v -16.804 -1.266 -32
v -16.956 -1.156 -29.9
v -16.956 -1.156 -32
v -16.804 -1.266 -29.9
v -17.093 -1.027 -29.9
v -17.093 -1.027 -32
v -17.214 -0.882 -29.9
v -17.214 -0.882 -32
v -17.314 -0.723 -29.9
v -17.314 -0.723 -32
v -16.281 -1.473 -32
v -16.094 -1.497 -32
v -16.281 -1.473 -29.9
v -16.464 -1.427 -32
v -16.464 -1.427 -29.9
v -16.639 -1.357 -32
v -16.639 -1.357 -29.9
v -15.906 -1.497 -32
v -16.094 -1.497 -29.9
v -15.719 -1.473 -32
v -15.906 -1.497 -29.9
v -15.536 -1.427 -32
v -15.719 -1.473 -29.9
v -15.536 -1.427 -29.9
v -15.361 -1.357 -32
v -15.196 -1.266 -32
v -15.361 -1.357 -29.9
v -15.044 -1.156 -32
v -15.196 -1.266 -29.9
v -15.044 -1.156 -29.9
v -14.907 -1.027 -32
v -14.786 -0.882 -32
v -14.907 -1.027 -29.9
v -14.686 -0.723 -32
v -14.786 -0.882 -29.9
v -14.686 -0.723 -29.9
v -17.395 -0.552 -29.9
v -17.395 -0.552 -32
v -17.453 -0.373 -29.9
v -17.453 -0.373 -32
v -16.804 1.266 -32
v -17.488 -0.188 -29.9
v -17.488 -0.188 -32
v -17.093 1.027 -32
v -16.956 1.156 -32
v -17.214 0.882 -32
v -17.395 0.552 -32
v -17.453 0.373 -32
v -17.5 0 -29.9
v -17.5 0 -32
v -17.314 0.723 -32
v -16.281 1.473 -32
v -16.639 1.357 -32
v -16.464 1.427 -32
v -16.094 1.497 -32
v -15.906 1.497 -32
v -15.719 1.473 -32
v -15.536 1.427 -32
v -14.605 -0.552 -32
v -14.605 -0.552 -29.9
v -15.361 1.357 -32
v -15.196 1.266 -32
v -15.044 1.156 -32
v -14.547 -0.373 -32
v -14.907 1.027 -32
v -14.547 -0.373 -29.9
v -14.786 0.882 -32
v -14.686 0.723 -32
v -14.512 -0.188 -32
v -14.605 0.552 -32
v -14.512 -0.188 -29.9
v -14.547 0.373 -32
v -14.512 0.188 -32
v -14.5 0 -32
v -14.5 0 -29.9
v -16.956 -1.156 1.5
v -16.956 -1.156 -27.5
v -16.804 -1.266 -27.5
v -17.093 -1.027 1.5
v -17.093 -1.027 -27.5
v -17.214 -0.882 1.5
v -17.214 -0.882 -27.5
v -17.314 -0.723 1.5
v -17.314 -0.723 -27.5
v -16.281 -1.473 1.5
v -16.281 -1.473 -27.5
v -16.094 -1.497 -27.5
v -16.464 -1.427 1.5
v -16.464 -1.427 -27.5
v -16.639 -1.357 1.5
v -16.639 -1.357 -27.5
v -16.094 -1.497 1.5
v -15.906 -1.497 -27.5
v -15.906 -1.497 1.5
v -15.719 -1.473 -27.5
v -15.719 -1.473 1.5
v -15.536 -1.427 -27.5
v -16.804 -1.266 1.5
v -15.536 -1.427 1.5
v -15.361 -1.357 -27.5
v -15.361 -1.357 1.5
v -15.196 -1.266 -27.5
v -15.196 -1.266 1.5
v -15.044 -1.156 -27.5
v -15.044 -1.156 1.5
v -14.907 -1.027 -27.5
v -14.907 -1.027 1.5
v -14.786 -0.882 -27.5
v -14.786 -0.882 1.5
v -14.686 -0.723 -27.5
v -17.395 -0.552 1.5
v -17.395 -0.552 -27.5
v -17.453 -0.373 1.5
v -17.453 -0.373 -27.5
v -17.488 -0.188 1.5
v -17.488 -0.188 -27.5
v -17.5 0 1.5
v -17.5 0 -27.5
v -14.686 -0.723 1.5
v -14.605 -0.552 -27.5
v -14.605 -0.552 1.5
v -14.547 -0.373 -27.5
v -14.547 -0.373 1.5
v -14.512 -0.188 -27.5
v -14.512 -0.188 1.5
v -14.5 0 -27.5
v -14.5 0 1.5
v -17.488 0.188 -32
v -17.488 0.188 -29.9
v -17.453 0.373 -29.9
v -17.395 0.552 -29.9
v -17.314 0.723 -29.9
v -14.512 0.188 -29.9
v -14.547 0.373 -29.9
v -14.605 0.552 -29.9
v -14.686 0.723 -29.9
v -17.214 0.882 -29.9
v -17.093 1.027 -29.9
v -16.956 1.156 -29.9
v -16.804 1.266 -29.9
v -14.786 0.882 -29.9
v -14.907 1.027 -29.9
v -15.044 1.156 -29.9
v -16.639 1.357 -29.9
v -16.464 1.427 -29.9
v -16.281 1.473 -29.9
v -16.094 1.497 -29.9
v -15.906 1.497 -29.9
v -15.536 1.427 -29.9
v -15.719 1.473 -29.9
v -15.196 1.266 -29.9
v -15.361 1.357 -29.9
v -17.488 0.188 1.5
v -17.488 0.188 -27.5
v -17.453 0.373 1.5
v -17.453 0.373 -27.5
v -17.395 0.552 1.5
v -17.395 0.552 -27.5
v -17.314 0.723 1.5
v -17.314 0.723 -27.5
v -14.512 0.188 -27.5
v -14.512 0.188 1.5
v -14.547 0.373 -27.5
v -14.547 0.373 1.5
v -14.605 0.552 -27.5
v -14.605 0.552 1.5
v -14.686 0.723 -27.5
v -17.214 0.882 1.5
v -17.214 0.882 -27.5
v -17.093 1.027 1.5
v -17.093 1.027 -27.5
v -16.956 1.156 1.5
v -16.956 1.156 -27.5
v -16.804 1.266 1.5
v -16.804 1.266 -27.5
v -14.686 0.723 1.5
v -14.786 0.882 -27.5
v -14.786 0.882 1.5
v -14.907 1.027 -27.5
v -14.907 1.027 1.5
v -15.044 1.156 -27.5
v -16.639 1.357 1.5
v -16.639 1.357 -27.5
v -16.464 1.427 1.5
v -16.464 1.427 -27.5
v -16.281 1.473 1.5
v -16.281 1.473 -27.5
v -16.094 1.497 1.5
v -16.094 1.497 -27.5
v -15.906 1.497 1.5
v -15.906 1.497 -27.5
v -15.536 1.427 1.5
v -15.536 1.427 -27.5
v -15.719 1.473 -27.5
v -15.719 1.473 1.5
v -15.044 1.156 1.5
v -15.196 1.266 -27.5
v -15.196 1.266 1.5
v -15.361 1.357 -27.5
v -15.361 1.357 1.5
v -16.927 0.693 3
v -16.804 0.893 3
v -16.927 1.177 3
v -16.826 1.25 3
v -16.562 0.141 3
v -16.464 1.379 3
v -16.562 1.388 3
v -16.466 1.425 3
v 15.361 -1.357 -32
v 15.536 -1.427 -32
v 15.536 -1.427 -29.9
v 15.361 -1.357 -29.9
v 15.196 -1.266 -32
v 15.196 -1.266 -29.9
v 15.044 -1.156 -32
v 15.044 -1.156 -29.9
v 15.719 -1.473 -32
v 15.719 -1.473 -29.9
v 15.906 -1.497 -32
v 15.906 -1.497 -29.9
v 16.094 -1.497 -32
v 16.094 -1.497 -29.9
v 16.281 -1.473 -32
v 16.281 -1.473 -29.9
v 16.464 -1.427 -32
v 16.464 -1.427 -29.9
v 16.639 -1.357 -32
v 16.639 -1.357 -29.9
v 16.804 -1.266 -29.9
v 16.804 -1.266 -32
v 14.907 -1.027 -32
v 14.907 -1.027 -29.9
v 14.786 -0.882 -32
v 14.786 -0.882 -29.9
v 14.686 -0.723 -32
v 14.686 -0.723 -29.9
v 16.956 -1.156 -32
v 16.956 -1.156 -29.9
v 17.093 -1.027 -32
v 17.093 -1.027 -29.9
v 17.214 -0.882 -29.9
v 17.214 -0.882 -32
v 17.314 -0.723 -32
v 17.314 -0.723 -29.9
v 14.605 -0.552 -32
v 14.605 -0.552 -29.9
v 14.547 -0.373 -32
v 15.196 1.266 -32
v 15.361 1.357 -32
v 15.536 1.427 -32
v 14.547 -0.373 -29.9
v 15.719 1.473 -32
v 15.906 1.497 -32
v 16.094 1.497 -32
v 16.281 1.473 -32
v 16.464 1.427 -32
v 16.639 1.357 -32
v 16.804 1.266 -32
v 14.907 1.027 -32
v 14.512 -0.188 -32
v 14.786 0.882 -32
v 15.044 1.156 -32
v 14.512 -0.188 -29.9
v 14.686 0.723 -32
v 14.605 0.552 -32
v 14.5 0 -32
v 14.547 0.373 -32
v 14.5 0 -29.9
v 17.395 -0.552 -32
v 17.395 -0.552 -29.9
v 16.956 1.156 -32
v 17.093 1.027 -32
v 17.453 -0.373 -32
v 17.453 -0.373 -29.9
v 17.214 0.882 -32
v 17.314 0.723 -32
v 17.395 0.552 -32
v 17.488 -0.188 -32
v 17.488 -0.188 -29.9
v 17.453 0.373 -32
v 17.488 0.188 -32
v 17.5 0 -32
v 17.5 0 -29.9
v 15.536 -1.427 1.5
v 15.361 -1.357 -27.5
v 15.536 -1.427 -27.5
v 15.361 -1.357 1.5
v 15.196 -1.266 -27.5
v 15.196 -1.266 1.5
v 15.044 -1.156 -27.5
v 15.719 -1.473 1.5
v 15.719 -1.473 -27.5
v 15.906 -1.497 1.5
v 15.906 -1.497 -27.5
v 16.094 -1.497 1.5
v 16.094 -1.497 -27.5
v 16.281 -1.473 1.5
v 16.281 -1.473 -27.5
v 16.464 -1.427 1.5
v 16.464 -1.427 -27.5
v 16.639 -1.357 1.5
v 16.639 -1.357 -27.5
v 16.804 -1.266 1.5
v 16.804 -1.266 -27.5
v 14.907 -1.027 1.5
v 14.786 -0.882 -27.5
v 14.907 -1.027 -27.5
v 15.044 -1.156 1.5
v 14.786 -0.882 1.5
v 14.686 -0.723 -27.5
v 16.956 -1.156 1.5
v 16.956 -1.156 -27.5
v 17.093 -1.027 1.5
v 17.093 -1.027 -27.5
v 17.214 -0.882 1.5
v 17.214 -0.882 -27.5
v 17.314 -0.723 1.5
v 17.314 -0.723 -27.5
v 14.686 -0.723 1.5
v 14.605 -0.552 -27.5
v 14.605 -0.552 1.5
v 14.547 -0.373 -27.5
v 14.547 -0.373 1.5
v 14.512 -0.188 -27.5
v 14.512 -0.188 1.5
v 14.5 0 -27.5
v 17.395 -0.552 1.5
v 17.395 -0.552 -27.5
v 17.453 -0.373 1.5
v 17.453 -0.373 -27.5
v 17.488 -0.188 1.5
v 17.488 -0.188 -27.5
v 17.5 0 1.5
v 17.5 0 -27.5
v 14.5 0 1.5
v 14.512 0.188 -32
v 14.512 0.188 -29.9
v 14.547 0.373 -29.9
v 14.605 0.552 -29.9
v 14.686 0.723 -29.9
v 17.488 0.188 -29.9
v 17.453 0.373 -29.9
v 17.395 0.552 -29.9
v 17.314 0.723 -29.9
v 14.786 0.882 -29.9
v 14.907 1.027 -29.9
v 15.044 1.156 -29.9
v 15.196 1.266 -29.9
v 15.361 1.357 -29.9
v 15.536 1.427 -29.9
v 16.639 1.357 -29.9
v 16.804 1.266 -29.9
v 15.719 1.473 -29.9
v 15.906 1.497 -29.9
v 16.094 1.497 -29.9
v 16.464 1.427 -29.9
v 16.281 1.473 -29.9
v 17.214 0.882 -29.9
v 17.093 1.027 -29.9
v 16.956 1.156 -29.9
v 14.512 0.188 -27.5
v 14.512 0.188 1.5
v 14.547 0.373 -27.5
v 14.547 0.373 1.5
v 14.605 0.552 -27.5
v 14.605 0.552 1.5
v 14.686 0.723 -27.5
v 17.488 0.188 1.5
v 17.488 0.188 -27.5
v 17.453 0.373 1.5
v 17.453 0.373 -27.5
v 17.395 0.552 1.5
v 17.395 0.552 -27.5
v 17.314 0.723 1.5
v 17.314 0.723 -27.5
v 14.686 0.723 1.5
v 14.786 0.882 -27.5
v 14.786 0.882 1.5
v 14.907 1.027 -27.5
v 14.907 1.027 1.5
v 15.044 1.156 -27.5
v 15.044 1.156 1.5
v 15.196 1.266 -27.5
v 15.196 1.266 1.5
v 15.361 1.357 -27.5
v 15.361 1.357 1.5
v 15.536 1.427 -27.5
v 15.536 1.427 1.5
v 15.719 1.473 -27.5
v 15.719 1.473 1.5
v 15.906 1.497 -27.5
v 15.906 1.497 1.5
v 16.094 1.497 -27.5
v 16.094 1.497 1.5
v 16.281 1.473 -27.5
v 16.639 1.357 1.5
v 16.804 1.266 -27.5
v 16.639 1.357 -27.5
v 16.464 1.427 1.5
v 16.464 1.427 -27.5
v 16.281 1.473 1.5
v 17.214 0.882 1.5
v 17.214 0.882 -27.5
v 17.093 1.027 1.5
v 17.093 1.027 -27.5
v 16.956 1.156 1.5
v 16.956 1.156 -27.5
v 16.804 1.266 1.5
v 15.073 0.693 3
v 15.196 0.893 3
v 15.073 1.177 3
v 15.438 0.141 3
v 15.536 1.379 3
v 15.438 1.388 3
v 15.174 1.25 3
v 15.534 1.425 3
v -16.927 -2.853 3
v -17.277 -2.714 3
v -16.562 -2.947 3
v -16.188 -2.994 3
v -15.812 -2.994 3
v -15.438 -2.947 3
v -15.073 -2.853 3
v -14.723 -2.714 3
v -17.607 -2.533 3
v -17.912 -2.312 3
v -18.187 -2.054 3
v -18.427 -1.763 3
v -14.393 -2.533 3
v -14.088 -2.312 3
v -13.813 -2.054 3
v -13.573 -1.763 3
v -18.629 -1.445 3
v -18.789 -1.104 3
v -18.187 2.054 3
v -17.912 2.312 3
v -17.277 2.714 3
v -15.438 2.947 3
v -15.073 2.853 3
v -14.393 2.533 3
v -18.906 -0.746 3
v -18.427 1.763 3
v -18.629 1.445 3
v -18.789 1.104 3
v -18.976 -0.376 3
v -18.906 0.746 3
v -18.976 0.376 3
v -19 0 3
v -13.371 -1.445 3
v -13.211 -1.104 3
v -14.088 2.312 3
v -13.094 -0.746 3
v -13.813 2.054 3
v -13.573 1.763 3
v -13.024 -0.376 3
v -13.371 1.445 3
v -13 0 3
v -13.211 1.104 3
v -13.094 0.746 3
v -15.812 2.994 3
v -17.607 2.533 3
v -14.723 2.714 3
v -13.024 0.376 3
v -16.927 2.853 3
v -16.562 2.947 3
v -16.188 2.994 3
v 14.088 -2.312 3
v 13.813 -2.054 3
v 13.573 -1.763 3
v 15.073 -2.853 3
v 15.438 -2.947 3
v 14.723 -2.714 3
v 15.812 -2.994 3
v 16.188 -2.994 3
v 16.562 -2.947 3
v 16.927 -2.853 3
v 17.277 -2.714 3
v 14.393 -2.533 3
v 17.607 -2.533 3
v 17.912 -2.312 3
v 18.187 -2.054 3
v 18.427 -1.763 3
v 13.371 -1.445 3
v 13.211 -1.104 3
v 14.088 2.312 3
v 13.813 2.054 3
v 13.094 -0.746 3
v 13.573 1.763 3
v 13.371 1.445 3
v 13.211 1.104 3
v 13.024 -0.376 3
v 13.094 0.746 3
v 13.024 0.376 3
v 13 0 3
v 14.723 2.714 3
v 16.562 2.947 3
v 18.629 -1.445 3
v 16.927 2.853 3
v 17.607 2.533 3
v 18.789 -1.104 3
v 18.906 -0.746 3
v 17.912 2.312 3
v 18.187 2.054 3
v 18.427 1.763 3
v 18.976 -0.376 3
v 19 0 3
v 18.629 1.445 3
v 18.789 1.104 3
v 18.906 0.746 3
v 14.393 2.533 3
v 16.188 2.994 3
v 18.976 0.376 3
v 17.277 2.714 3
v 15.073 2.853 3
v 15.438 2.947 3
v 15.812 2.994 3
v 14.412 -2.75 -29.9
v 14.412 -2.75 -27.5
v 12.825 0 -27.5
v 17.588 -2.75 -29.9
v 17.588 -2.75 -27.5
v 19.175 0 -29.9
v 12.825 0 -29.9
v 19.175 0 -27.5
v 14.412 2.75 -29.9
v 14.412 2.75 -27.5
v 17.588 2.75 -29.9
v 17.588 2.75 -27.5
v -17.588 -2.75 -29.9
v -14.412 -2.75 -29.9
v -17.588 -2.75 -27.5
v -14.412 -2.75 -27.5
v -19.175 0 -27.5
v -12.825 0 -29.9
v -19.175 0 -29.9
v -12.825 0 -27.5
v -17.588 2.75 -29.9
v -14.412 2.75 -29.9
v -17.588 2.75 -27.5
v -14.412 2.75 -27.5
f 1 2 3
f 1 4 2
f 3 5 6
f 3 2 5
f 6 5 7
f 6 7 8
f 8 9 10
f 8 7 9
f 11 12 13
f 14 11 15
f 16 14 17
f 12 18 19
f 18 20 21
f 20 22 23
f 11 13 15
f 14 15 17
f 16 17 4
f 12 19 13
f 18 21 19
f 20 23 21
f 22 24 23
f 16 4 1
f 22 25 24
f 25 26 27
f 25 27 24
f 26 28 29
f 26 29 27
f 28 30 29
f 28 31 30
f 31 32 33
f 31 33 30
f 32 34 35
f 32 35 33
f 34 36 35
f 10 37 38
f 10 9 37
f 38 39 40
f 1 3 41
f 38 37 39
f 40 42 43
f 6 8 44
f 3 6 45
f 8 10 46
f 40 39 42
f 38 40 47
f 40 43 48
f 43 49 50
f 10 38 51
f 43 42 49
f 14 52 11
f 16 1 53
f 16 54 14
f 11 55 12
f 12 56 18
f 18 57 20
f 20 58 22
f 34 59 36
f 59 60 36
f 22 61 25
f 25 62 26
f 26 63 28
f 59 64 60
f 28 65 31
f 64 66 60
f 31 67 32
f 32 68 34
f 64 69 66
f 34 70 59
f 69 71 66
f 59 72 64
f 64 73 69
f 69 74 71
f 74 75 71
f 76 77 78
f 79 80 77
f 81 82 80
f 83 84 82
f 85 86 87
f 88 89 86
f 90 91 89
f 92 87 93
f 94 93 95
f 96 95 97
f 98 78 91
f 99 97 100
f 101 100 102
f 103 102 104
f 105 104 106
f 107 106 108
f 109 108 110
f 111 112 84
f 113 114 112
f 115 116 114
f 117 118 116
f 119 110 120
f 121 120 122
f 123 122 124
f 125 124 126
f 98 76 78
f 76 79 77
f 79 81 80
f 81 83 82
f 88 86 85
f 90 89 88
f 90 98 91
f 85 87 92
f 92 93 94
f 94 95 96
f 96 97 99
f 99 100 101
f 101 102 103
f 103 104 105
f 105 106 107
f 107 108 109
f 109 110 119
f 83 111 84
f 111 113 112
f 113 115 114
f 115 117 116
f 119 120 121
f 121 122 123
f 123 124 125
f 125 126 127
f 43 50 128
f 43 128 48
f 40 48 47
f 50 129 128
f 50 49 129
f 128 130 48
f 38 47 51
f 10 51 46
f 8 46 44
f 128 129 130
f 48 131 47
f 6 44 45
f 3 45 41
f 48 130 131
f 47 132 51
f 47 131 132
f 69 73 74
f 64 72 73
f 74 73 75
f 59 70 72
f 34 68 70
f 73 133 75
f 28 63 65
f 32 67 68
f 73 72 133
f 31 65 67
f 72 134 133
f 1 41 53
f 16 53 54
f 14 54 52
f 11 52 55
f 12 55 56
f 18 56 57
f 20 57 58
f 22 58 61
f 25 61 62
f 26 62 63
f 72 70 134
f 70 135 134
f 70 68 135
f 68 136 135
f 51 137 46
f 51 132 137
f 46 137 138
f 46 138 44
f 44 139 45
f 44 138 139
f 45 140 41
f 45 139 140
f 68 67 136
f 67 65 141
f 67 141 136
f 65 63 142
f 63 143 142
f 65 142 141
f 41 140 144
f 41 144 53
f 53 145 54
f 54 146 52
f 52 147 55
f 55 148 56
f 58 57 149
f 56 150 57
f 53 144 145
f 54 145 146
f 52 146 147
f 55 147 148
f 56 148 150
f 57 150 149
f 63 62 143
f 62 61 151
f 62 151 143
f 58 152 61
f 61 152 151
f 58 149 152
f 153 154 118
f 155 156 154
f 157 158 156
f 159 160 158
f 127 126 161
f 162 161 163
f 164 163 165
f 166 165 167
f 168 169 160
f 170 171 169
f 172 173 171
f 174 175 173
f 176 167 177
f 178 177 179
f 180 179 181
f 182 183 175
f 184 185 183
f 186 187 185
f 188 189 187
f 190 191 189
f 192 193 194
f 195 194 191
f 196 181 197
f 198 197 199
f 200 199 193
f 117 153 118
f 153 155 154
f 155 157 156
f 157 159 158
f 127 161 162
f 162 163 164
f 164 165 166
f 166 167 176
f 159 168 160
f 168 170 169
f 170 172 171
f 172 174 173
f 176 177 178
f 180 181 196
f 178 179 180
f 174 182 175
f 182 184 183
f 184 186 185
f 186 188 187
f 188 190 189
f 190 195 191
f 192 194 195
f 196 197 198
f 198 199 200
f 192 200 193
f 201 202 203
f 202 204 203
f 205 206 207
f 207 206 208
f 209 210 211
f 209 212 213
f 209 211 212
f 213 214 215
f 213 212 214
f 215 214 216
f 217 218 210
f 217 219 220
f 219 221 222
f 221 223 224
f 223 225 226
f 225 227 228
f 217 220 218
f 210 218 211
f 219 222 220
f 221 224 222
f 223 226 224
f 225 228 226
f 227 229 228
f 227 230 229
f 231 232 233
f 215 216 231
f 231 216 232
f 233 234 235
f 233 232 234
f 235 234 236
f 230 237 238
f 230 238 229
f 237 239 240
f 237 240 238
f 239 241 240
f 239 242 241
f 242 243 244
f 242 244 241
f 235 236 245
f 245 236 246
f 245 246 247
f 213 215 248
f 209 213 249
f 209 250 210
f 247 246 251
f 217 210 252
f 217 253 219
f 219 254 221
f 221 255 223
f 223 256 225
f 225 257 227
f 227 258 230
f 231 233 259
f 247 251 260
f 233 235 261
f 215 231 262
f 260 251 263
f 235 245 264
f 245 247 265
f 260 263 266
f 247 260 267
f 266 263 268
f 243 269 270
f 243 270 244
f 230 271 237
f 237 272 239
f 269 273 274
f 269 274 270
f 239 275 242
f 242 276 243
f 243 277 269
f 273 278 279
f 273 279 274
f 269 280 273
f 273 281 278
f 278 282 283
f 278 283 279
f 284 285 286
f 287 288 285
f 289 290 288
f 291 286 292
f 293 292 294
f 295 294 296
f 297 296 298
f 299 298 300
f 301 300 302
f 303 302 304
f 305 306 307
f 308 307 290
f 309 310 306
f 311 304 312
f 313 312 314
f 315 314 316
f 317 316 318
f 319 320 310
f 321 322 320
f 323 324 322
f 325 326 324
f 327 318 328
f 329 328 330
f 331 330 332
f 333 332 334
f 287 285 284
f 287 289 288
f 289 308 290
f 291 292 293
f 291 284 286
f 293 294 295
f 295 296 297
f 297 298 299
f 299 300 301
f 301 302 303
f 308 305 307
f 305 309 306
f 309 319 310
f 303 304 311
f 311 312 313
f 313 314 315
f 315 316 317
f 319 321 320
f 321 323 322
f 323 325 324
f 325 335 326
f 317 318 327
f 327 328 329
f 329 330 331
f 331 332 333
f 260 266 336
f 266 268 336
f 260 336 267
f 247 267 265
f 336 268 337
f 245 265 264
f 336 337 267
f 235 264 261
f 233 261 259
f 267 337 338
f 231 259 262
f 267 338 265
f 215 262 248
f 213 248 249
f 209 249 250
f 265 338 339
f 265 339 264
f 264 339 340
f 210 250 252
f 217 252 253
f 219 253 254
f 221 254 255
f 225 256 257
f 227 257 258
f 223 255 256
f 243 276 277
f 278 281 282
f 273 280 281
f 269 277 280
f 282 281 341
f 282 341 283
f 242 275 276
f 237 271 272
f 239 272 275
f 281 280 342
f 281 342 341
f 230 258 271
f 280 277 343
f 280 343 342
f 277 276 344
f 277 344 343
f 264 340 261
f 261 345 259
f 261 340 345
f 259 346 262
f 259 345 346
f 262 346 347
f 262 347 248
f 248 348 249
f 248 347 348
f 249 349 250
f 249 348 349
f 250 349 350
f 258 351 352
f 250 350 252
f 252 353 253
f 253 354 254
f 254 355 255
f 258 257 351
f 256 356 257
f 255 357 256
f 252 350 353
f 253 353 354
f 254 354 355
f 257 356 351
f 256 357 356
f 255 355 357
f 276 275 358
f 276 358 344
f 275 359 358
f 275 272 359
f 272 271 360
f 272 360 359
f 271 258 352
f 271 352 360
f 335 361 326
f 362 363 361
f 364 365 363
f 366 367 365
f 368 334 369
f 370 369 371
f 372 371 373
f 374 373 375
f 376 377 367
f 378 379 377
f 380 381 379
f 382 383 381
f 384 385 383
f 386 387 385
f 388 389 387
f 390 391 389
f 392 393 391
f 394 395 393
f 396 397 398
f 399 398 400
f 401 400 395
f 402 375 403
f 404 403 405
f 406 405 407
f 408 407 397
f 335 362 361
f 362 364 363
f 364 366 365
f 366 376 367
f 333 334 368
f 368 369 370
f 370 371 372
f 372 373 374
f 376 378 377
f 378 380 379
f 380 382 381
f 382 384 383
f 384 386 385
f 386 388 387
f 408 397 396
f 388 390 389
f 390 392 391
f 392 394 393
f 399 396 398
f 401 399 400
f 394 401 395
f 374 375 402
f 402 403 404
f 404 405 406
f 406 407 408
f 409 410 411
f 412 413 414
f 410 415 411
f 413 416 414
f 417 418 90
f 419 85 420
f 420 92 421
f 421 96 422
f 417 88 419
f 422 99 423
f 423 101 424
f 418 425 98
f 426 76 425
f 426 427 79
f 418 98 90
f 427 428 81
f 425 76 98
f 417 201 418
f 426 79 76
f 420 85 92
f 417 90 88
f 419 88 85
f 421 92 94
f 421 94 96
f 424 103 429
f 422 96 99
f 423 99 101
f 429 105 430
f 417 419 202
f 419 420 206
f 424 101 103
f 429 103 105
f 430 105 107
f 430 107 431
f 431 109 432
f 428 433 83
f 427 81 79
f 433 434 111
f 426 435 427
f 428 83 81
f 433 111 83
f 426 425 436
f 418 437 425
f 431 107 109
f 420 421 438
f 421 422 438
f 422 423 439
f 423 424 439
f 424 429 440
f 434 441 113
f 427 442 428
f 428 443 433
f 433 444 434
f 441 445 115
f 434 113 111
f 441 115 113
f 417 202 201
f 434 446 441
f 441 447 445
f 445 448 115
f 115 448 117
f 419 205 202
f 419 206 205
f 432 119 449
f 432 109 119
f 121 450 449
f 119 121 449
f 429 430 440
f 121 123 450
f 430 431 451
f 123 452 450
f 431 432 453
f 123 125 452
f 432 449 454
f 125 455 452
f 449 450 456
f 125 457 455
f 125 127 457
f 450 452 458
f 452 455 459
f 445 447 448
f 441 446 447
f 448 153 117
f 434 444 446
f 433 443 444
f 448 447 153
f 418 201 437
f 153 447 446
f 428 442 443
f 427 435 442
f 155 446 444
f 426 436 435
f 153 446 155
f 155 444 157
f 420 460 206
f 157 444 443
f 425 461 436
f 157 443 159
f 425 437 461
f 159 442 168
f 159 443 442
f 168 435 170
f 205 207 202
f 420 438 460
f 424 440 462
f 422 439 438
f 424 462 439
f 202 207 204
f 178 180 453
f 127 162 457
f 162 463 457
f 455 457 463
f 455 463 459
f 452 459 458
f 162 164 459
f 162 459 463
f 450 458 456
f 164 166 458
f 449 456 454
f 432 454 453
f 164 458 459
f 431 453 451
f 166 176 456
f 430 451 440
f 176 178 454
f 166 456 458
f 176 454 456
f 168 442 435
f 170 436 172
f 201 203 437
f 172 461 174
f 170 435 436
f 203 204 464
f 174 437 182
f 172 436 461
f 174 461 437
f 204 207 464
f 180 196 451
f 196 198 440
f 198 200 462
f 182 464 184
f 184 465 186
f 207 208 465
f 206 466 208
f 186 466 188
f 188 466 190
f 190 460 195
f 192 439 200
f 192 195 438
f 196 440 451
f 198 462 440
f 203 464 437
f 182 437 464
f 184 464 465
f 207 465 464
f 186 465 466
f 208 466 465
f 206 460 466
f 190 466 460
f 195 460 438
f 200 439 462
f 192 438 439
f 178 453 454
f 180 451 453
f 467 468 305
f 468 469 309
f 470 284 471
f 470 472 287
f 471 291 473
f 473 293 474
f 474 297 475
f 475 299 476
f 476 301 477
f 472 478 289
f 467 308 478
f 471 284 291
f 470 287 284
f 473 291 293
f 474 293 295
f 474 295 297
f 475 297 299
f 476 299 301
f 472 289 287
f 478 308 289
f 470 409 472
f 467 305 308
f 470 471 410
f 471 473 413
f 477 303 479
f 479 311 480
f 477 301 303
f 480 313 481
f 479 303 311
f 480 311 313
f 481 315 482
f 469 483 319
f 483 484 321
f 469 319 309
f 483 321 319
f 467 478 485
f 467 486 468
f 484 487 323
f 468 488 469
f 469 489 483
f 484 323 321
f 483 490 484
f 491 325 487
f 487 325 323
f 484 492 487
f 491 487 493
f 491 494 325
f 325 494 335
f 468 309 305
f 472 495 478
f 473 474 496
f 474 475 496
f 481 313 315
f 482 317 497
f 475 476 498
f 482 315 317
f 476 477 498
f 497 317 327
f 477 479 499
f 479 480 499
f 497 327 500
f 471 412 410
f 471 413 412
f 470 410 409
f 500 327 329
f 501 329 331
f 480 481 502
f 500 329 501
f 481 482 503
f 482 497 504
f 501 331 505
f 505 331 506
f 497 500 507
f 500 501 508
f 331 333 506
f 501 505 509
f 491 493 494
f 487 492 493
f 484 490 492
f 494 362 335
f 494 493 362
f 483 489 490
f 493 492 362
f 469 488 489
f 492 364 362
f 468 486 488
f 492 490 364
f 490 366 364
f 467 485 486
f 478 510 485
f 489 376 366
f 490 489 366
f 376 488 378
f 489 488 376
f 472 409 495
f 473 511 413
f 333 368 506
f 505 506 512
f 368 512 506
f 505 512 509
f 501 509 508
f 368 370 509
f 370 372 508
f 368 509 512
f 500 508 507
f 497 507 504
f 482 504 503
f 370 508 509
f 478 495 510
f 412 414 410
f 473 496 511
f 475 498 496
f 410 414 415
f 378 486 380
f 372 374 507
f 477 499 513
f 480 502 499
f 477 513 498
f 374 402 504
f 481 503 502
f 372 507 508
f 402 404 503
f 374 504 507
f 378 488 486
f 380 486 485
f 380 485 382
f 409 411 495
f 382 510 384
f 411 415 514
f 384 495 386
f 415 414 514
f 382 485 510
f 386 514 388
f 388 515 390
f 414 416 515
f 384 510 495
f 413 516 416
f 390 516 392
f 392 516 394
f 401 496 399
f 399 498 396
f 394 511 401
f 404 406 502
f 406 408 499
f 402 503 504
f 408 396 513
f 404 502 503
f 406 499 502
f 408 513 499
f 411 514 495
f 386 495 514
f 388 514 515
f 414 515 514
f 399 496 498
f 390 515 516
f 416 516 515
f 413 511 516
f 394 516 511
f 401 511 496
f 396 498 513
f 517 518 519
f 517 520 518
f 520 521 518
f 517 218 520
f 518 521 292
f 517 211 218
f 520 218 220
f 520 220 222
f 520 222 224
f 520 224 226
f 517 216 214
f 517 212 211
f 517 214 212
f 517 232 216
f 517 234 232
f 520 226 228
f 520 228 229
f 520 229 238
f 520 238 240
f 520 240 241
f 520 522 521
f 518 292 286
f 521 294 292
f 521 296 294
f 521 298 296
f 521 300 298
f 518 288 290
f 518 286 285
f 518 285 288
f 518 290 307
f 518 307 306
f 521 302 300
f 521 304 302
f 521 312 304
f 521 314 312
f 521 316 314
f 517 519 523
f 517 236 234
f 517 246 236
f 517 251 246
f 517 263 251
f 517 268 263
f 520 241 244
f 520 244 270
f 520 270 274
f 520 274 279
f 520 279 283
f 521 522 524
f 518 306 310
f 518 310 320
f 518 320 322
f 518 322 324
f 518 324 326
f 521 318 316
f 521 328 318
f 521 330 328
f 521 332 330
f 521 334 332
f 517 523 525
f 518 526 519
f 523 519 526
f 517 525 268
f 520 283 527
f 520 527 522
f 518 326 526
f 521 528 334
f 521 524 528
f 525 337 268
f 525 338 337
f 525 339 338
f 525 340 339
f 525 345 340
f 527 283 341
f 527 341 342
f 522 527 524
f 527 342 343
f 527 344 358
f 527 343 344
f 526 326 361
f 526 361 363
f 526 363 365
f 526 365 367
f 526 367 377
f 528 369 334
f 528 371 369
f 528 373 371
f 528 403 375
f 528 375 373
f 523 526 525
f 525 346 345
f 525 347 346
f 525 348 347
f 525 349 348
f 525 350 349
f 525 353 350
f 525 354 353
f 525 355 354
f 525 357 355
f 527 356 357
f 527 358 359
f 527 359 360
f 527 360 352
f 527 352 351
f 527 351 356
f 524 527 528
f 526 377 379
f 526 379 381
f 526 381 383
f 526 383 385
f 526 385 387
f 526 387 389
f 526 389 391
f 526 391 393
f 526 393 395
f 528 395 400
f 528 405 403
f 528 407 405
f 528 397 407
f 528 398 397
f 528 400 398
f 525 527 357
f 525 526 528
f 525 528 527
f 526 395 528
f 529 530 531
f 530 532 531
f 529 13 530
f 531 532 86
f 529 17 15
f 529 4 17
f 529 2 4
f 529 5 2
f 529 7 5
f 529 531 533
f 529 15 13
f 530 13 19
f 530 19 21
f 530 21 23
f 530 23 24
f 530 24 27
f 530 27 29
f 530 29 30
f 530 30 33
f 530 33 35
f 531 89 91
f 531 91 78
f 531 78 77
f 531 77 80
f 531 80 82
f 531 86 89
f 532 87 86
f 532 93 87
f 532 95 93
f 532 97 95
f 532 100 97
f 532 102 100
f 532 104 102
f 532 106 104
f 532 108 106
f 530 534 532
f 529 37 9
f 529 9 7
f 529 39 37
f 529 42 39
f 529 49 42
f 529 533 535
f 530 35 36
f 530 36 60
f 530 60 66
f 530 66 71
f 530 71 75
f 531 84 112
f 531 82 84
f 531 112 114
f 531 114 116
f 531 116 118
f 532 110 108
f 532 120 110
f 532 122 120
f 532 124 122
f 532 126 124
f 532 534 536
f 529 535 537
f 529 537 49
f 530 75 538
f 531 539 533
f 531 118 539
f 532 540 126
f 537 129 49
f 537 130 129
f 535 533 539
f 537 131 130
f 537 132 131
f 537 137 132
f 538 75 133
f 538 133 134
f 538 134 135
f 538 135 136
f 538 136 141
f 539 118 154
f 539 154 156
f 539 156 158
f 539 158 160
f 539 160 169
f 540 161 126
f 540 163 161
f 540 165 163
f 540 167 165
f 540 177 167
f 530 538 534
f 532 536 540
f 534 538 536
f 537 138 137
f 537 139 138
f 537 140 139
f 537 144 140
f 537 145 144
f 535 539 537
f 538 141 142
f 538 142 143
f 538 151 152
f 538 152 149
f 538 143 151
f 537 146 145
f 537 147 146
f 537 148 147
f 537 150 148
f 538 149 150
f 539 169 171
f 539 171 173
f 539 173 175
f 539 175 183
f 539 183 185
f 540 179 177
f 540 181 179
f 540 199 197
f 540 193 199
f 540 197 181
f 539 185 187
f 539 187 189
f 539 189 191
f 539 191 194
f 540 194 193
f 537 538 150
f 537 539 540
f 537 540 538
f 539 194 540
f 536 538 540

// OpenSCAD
$fn = 50;

difference() {
	union() {
		translate(v = [0, 0, 0]) {
			rotate(a = [0, 0, 0]) {
				difference() {
					union() {
						translate(v = [-16, 0, 3]) {
							rotate(a = [0, 0, 0]) {
								difference() {
									union() {
										translate(v = [0, 0, -35.0]) {
											cylinder(h = 35, r = 1.5);
										}
										translate(v = [0, 0, -1.5]) {
											cylinder(h = 1.5, r1 = 1.5, r2 = 3);
										}
									}
									union();
								}
							}
						}
						translate(v = [-16, 0, -29.900000000000002]) {
							rotate(a = [0, 0, 0]) {
								difference() {
									union() {
										linear_extrude(height = 2.4) {
											polygon(points = [[3.1754264805429417, 0.0], [1.5877132402714713, 2.75], [-1.5877132402714702, 2.7500000000000004], [-3.1754264805429417, 3.888775875324659e-16], [-1.5877132402714722, -2.7499999999999996], [1.5877132402714687, -2.7500000000000013]]);
										}
									}
									union();
								}
							}
						}
						translate(v = [16, 0, 3]) {
							rotate(a = [0, 0, 0]) {
								difference() {
									union() {
										translate(v = [0, 0, -35.0]) {
											cylinder(h = 35, r = 1.5);
										}
										translate(v = [0, 0, -1.5]) {
											cylinder(h = 1.5, r1 = 1.5, r2 = 3);
										}
									}
									union();
								}
							}
						}
						translate(v = [16, 0, -29.900000000000002]) {
							rotate(a = [0, 0, 0]) {
								difference() {
									union() {
										linear_extrude(height = 2.4) {
											polygon(points = [[3.1754264805429417, 0.0], [1.5877132402714713, 2.75], [-1.5877132402714702, 2.7500000000000004], [-3.1754264805429417, 3.888775875324659e-16], [-1.5877132402714722, -2.7499999999999996], [1.5877132402714687, -2.7500000000000013]]);
										}
									}
									union();
								}
							}
						}
					}
					union();
				}
			}
		}
	}
	union();
}
